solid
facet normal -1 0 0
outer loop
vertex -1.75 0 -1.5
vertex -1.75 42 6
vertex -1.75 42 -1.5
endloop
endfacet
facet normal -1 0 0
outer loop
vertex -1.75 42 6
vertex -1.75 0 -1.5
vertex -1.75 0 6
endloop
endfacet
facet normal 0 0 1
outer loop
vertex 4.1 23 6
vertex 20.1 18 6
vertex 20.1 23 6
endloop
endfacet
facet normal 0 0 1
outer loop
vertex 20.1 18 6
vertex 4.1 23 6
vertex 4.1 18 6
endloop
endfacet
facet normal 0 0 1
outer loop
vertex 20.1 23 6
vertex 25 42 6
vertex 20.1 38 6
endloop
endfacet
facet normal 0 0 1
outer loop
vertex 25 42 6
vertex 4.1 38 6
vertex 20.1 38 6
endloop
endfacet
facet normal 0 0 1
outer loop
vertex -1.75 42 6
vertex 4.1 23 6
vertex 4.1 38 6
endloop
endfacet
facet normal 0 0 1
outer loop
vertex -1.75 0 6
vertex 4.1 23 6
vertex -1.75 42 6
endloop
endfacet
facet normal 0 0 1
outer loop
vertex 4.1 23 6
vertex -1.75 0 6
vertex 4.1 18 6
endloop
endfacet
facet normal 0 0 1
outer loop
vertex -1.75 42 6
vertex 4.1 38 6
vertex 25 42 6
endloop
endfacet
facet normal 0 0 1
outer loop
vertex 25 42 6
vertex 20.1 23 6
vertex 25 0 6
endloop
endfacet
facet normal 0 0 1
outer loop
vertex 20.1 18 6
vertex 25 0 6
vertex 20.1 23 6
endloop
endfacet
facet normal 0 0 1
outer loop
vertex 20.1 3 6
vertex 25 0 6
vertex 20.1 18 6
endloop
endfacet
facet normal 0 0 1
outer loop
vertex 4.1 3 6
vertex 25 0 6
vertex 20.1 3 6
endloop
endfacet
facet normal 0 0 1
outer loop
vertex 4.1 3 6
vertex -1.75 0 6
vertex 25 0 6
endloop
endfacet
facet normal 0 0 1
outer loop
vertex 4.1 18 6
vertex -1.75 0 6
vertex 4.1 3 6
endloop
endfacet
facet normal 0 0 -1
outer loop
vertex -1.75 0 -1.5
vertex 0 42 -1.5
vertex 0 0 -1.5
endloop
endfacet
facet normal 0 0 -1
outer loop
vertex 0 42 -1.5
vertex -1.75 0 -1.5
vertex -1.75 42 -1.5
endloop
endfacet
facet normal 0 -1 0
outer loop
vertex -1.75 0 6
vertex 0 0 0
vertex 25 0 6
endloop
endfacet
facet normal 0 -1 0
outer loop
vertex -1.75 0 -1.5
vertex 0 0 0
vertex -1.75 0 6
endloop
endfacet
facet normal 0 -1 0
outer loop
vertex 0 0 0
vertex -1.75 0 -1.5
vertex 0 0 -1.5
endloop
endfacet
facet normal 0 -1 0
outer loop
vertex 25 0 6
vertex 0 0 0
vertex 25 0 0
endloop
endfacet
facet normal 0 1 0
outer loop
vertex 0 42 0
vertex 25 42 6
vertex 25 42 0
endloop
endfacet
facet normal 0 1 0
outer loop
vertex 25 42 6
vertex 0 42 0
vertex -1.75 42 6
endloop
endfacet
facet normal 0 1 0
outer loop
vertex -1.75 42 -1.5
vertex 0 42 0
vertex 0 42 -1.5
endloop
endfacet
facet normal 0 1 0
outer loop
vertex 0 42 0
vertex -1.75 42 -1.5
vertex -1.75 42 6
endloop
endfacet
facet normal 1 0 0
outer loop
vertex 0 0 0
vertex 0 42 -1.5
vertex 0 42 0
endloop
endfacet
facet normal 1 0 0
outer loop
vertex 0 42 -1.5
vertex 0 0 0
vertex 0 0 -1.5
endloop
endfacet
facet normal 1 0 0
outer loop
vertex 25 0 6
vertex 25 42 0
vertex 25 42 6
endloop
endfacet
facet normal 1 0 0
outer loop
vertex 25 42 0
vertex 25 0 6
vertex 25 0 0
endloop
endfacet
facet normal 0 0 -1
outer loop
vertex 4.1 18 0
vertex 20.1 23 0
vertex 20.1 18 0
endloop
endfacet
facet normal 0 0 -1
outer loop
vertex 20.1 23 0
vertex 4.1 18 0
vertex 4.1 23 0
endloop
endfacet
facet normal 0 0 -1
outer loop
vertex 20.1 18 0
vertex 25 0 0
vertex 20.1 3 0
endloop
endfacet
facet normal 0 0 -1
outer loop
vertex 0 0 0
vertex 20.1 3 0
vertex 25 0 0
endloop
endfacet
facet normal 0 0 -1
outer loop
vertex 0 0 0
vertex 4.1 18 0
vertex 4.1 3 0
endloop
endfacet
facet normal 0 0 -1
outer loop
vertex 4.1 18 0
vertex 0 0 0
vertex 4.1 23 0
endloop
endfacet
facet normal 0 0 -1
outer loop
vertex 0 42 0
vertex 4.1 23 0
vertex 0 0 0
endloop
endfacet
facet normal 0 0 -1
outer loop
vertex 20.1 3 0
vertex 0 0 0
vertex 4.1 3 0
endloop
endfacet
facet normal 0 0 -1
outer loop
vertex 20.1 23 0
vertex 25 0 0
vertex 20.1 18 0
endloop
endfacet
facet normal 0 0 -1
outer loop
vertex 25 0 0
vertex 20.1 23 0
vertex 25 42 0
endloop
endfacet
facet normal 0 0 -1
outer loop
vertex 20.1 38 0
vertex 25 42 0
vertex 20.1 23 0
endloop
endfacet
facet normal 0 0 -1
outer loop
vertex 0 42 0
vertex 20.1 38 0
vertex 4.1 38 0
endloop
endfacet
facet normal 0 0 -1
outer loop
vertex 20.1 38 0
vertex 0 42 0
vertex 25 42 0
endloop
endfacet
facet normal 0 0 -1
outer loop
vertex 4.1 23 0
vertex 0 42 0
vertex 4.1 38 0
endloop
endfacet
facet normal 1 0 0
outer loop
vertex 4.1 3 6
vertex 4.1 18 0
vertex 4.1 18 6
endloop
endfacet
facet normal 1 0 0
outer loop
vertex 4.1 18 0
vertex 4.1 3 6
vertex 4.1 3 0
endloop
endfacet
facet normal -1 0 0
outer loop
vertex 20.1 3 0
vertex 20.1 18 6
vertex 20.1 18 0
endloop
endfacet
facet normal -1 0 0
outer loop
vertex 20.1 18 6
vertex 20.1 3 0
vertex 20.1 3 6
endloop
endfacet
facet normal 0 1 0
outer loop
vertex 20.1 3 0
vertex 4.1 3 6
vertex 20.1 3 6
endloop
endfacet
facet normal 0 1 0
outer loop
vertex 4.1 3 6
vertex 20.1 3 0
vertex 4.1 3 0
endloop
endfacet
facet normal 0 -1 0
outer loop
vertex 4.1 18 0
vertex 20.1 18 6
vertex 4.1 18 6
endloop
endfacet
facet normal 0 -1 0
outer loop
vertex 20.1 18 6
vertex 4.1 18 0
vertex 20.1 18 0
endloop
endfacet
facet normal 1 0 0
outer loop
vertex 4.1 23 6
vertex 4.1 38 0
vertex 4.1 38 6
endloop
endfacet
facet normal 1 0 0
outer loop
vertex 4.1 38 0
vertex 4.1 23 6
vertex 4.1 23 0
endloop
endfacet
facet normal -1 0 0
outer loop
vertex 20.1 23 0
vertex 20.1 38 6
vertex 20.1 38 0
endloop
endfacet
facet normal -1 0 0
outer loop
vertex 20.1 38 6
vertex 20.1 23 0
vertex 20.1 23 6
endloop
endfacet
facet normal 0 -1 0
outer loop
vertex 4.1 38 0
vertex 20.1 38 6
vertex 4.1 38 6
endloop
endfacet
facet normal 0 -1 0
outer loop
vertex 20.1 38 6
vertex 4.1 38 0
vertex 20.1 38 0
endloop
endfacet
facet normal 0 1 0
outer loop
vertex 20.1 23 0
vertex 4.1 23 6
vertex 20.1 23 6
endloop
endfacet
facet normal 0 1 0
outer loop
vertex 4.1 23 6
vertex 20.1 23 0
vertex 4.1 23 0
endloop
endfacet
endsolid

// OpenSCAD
module keySpacer(){
 
 difference(){
 translate([-1.75,0,-1.5])cube([21.6, 90/2-3, 4.8+1.5+0.2+1]);
 translate([0,0,-1.5])cube([50, 90/2, 4.8+1.5+0.2+1]);
 }
 difference(){
 cube([ 25,90/2-3, 6]);
 
 translate([12.1,15/2+3,0])cube([16,15,100],center=true);
 translate([12.1,15/2+23,0])cube([16,15,100],center=true);

 }

}

keySpacer();
